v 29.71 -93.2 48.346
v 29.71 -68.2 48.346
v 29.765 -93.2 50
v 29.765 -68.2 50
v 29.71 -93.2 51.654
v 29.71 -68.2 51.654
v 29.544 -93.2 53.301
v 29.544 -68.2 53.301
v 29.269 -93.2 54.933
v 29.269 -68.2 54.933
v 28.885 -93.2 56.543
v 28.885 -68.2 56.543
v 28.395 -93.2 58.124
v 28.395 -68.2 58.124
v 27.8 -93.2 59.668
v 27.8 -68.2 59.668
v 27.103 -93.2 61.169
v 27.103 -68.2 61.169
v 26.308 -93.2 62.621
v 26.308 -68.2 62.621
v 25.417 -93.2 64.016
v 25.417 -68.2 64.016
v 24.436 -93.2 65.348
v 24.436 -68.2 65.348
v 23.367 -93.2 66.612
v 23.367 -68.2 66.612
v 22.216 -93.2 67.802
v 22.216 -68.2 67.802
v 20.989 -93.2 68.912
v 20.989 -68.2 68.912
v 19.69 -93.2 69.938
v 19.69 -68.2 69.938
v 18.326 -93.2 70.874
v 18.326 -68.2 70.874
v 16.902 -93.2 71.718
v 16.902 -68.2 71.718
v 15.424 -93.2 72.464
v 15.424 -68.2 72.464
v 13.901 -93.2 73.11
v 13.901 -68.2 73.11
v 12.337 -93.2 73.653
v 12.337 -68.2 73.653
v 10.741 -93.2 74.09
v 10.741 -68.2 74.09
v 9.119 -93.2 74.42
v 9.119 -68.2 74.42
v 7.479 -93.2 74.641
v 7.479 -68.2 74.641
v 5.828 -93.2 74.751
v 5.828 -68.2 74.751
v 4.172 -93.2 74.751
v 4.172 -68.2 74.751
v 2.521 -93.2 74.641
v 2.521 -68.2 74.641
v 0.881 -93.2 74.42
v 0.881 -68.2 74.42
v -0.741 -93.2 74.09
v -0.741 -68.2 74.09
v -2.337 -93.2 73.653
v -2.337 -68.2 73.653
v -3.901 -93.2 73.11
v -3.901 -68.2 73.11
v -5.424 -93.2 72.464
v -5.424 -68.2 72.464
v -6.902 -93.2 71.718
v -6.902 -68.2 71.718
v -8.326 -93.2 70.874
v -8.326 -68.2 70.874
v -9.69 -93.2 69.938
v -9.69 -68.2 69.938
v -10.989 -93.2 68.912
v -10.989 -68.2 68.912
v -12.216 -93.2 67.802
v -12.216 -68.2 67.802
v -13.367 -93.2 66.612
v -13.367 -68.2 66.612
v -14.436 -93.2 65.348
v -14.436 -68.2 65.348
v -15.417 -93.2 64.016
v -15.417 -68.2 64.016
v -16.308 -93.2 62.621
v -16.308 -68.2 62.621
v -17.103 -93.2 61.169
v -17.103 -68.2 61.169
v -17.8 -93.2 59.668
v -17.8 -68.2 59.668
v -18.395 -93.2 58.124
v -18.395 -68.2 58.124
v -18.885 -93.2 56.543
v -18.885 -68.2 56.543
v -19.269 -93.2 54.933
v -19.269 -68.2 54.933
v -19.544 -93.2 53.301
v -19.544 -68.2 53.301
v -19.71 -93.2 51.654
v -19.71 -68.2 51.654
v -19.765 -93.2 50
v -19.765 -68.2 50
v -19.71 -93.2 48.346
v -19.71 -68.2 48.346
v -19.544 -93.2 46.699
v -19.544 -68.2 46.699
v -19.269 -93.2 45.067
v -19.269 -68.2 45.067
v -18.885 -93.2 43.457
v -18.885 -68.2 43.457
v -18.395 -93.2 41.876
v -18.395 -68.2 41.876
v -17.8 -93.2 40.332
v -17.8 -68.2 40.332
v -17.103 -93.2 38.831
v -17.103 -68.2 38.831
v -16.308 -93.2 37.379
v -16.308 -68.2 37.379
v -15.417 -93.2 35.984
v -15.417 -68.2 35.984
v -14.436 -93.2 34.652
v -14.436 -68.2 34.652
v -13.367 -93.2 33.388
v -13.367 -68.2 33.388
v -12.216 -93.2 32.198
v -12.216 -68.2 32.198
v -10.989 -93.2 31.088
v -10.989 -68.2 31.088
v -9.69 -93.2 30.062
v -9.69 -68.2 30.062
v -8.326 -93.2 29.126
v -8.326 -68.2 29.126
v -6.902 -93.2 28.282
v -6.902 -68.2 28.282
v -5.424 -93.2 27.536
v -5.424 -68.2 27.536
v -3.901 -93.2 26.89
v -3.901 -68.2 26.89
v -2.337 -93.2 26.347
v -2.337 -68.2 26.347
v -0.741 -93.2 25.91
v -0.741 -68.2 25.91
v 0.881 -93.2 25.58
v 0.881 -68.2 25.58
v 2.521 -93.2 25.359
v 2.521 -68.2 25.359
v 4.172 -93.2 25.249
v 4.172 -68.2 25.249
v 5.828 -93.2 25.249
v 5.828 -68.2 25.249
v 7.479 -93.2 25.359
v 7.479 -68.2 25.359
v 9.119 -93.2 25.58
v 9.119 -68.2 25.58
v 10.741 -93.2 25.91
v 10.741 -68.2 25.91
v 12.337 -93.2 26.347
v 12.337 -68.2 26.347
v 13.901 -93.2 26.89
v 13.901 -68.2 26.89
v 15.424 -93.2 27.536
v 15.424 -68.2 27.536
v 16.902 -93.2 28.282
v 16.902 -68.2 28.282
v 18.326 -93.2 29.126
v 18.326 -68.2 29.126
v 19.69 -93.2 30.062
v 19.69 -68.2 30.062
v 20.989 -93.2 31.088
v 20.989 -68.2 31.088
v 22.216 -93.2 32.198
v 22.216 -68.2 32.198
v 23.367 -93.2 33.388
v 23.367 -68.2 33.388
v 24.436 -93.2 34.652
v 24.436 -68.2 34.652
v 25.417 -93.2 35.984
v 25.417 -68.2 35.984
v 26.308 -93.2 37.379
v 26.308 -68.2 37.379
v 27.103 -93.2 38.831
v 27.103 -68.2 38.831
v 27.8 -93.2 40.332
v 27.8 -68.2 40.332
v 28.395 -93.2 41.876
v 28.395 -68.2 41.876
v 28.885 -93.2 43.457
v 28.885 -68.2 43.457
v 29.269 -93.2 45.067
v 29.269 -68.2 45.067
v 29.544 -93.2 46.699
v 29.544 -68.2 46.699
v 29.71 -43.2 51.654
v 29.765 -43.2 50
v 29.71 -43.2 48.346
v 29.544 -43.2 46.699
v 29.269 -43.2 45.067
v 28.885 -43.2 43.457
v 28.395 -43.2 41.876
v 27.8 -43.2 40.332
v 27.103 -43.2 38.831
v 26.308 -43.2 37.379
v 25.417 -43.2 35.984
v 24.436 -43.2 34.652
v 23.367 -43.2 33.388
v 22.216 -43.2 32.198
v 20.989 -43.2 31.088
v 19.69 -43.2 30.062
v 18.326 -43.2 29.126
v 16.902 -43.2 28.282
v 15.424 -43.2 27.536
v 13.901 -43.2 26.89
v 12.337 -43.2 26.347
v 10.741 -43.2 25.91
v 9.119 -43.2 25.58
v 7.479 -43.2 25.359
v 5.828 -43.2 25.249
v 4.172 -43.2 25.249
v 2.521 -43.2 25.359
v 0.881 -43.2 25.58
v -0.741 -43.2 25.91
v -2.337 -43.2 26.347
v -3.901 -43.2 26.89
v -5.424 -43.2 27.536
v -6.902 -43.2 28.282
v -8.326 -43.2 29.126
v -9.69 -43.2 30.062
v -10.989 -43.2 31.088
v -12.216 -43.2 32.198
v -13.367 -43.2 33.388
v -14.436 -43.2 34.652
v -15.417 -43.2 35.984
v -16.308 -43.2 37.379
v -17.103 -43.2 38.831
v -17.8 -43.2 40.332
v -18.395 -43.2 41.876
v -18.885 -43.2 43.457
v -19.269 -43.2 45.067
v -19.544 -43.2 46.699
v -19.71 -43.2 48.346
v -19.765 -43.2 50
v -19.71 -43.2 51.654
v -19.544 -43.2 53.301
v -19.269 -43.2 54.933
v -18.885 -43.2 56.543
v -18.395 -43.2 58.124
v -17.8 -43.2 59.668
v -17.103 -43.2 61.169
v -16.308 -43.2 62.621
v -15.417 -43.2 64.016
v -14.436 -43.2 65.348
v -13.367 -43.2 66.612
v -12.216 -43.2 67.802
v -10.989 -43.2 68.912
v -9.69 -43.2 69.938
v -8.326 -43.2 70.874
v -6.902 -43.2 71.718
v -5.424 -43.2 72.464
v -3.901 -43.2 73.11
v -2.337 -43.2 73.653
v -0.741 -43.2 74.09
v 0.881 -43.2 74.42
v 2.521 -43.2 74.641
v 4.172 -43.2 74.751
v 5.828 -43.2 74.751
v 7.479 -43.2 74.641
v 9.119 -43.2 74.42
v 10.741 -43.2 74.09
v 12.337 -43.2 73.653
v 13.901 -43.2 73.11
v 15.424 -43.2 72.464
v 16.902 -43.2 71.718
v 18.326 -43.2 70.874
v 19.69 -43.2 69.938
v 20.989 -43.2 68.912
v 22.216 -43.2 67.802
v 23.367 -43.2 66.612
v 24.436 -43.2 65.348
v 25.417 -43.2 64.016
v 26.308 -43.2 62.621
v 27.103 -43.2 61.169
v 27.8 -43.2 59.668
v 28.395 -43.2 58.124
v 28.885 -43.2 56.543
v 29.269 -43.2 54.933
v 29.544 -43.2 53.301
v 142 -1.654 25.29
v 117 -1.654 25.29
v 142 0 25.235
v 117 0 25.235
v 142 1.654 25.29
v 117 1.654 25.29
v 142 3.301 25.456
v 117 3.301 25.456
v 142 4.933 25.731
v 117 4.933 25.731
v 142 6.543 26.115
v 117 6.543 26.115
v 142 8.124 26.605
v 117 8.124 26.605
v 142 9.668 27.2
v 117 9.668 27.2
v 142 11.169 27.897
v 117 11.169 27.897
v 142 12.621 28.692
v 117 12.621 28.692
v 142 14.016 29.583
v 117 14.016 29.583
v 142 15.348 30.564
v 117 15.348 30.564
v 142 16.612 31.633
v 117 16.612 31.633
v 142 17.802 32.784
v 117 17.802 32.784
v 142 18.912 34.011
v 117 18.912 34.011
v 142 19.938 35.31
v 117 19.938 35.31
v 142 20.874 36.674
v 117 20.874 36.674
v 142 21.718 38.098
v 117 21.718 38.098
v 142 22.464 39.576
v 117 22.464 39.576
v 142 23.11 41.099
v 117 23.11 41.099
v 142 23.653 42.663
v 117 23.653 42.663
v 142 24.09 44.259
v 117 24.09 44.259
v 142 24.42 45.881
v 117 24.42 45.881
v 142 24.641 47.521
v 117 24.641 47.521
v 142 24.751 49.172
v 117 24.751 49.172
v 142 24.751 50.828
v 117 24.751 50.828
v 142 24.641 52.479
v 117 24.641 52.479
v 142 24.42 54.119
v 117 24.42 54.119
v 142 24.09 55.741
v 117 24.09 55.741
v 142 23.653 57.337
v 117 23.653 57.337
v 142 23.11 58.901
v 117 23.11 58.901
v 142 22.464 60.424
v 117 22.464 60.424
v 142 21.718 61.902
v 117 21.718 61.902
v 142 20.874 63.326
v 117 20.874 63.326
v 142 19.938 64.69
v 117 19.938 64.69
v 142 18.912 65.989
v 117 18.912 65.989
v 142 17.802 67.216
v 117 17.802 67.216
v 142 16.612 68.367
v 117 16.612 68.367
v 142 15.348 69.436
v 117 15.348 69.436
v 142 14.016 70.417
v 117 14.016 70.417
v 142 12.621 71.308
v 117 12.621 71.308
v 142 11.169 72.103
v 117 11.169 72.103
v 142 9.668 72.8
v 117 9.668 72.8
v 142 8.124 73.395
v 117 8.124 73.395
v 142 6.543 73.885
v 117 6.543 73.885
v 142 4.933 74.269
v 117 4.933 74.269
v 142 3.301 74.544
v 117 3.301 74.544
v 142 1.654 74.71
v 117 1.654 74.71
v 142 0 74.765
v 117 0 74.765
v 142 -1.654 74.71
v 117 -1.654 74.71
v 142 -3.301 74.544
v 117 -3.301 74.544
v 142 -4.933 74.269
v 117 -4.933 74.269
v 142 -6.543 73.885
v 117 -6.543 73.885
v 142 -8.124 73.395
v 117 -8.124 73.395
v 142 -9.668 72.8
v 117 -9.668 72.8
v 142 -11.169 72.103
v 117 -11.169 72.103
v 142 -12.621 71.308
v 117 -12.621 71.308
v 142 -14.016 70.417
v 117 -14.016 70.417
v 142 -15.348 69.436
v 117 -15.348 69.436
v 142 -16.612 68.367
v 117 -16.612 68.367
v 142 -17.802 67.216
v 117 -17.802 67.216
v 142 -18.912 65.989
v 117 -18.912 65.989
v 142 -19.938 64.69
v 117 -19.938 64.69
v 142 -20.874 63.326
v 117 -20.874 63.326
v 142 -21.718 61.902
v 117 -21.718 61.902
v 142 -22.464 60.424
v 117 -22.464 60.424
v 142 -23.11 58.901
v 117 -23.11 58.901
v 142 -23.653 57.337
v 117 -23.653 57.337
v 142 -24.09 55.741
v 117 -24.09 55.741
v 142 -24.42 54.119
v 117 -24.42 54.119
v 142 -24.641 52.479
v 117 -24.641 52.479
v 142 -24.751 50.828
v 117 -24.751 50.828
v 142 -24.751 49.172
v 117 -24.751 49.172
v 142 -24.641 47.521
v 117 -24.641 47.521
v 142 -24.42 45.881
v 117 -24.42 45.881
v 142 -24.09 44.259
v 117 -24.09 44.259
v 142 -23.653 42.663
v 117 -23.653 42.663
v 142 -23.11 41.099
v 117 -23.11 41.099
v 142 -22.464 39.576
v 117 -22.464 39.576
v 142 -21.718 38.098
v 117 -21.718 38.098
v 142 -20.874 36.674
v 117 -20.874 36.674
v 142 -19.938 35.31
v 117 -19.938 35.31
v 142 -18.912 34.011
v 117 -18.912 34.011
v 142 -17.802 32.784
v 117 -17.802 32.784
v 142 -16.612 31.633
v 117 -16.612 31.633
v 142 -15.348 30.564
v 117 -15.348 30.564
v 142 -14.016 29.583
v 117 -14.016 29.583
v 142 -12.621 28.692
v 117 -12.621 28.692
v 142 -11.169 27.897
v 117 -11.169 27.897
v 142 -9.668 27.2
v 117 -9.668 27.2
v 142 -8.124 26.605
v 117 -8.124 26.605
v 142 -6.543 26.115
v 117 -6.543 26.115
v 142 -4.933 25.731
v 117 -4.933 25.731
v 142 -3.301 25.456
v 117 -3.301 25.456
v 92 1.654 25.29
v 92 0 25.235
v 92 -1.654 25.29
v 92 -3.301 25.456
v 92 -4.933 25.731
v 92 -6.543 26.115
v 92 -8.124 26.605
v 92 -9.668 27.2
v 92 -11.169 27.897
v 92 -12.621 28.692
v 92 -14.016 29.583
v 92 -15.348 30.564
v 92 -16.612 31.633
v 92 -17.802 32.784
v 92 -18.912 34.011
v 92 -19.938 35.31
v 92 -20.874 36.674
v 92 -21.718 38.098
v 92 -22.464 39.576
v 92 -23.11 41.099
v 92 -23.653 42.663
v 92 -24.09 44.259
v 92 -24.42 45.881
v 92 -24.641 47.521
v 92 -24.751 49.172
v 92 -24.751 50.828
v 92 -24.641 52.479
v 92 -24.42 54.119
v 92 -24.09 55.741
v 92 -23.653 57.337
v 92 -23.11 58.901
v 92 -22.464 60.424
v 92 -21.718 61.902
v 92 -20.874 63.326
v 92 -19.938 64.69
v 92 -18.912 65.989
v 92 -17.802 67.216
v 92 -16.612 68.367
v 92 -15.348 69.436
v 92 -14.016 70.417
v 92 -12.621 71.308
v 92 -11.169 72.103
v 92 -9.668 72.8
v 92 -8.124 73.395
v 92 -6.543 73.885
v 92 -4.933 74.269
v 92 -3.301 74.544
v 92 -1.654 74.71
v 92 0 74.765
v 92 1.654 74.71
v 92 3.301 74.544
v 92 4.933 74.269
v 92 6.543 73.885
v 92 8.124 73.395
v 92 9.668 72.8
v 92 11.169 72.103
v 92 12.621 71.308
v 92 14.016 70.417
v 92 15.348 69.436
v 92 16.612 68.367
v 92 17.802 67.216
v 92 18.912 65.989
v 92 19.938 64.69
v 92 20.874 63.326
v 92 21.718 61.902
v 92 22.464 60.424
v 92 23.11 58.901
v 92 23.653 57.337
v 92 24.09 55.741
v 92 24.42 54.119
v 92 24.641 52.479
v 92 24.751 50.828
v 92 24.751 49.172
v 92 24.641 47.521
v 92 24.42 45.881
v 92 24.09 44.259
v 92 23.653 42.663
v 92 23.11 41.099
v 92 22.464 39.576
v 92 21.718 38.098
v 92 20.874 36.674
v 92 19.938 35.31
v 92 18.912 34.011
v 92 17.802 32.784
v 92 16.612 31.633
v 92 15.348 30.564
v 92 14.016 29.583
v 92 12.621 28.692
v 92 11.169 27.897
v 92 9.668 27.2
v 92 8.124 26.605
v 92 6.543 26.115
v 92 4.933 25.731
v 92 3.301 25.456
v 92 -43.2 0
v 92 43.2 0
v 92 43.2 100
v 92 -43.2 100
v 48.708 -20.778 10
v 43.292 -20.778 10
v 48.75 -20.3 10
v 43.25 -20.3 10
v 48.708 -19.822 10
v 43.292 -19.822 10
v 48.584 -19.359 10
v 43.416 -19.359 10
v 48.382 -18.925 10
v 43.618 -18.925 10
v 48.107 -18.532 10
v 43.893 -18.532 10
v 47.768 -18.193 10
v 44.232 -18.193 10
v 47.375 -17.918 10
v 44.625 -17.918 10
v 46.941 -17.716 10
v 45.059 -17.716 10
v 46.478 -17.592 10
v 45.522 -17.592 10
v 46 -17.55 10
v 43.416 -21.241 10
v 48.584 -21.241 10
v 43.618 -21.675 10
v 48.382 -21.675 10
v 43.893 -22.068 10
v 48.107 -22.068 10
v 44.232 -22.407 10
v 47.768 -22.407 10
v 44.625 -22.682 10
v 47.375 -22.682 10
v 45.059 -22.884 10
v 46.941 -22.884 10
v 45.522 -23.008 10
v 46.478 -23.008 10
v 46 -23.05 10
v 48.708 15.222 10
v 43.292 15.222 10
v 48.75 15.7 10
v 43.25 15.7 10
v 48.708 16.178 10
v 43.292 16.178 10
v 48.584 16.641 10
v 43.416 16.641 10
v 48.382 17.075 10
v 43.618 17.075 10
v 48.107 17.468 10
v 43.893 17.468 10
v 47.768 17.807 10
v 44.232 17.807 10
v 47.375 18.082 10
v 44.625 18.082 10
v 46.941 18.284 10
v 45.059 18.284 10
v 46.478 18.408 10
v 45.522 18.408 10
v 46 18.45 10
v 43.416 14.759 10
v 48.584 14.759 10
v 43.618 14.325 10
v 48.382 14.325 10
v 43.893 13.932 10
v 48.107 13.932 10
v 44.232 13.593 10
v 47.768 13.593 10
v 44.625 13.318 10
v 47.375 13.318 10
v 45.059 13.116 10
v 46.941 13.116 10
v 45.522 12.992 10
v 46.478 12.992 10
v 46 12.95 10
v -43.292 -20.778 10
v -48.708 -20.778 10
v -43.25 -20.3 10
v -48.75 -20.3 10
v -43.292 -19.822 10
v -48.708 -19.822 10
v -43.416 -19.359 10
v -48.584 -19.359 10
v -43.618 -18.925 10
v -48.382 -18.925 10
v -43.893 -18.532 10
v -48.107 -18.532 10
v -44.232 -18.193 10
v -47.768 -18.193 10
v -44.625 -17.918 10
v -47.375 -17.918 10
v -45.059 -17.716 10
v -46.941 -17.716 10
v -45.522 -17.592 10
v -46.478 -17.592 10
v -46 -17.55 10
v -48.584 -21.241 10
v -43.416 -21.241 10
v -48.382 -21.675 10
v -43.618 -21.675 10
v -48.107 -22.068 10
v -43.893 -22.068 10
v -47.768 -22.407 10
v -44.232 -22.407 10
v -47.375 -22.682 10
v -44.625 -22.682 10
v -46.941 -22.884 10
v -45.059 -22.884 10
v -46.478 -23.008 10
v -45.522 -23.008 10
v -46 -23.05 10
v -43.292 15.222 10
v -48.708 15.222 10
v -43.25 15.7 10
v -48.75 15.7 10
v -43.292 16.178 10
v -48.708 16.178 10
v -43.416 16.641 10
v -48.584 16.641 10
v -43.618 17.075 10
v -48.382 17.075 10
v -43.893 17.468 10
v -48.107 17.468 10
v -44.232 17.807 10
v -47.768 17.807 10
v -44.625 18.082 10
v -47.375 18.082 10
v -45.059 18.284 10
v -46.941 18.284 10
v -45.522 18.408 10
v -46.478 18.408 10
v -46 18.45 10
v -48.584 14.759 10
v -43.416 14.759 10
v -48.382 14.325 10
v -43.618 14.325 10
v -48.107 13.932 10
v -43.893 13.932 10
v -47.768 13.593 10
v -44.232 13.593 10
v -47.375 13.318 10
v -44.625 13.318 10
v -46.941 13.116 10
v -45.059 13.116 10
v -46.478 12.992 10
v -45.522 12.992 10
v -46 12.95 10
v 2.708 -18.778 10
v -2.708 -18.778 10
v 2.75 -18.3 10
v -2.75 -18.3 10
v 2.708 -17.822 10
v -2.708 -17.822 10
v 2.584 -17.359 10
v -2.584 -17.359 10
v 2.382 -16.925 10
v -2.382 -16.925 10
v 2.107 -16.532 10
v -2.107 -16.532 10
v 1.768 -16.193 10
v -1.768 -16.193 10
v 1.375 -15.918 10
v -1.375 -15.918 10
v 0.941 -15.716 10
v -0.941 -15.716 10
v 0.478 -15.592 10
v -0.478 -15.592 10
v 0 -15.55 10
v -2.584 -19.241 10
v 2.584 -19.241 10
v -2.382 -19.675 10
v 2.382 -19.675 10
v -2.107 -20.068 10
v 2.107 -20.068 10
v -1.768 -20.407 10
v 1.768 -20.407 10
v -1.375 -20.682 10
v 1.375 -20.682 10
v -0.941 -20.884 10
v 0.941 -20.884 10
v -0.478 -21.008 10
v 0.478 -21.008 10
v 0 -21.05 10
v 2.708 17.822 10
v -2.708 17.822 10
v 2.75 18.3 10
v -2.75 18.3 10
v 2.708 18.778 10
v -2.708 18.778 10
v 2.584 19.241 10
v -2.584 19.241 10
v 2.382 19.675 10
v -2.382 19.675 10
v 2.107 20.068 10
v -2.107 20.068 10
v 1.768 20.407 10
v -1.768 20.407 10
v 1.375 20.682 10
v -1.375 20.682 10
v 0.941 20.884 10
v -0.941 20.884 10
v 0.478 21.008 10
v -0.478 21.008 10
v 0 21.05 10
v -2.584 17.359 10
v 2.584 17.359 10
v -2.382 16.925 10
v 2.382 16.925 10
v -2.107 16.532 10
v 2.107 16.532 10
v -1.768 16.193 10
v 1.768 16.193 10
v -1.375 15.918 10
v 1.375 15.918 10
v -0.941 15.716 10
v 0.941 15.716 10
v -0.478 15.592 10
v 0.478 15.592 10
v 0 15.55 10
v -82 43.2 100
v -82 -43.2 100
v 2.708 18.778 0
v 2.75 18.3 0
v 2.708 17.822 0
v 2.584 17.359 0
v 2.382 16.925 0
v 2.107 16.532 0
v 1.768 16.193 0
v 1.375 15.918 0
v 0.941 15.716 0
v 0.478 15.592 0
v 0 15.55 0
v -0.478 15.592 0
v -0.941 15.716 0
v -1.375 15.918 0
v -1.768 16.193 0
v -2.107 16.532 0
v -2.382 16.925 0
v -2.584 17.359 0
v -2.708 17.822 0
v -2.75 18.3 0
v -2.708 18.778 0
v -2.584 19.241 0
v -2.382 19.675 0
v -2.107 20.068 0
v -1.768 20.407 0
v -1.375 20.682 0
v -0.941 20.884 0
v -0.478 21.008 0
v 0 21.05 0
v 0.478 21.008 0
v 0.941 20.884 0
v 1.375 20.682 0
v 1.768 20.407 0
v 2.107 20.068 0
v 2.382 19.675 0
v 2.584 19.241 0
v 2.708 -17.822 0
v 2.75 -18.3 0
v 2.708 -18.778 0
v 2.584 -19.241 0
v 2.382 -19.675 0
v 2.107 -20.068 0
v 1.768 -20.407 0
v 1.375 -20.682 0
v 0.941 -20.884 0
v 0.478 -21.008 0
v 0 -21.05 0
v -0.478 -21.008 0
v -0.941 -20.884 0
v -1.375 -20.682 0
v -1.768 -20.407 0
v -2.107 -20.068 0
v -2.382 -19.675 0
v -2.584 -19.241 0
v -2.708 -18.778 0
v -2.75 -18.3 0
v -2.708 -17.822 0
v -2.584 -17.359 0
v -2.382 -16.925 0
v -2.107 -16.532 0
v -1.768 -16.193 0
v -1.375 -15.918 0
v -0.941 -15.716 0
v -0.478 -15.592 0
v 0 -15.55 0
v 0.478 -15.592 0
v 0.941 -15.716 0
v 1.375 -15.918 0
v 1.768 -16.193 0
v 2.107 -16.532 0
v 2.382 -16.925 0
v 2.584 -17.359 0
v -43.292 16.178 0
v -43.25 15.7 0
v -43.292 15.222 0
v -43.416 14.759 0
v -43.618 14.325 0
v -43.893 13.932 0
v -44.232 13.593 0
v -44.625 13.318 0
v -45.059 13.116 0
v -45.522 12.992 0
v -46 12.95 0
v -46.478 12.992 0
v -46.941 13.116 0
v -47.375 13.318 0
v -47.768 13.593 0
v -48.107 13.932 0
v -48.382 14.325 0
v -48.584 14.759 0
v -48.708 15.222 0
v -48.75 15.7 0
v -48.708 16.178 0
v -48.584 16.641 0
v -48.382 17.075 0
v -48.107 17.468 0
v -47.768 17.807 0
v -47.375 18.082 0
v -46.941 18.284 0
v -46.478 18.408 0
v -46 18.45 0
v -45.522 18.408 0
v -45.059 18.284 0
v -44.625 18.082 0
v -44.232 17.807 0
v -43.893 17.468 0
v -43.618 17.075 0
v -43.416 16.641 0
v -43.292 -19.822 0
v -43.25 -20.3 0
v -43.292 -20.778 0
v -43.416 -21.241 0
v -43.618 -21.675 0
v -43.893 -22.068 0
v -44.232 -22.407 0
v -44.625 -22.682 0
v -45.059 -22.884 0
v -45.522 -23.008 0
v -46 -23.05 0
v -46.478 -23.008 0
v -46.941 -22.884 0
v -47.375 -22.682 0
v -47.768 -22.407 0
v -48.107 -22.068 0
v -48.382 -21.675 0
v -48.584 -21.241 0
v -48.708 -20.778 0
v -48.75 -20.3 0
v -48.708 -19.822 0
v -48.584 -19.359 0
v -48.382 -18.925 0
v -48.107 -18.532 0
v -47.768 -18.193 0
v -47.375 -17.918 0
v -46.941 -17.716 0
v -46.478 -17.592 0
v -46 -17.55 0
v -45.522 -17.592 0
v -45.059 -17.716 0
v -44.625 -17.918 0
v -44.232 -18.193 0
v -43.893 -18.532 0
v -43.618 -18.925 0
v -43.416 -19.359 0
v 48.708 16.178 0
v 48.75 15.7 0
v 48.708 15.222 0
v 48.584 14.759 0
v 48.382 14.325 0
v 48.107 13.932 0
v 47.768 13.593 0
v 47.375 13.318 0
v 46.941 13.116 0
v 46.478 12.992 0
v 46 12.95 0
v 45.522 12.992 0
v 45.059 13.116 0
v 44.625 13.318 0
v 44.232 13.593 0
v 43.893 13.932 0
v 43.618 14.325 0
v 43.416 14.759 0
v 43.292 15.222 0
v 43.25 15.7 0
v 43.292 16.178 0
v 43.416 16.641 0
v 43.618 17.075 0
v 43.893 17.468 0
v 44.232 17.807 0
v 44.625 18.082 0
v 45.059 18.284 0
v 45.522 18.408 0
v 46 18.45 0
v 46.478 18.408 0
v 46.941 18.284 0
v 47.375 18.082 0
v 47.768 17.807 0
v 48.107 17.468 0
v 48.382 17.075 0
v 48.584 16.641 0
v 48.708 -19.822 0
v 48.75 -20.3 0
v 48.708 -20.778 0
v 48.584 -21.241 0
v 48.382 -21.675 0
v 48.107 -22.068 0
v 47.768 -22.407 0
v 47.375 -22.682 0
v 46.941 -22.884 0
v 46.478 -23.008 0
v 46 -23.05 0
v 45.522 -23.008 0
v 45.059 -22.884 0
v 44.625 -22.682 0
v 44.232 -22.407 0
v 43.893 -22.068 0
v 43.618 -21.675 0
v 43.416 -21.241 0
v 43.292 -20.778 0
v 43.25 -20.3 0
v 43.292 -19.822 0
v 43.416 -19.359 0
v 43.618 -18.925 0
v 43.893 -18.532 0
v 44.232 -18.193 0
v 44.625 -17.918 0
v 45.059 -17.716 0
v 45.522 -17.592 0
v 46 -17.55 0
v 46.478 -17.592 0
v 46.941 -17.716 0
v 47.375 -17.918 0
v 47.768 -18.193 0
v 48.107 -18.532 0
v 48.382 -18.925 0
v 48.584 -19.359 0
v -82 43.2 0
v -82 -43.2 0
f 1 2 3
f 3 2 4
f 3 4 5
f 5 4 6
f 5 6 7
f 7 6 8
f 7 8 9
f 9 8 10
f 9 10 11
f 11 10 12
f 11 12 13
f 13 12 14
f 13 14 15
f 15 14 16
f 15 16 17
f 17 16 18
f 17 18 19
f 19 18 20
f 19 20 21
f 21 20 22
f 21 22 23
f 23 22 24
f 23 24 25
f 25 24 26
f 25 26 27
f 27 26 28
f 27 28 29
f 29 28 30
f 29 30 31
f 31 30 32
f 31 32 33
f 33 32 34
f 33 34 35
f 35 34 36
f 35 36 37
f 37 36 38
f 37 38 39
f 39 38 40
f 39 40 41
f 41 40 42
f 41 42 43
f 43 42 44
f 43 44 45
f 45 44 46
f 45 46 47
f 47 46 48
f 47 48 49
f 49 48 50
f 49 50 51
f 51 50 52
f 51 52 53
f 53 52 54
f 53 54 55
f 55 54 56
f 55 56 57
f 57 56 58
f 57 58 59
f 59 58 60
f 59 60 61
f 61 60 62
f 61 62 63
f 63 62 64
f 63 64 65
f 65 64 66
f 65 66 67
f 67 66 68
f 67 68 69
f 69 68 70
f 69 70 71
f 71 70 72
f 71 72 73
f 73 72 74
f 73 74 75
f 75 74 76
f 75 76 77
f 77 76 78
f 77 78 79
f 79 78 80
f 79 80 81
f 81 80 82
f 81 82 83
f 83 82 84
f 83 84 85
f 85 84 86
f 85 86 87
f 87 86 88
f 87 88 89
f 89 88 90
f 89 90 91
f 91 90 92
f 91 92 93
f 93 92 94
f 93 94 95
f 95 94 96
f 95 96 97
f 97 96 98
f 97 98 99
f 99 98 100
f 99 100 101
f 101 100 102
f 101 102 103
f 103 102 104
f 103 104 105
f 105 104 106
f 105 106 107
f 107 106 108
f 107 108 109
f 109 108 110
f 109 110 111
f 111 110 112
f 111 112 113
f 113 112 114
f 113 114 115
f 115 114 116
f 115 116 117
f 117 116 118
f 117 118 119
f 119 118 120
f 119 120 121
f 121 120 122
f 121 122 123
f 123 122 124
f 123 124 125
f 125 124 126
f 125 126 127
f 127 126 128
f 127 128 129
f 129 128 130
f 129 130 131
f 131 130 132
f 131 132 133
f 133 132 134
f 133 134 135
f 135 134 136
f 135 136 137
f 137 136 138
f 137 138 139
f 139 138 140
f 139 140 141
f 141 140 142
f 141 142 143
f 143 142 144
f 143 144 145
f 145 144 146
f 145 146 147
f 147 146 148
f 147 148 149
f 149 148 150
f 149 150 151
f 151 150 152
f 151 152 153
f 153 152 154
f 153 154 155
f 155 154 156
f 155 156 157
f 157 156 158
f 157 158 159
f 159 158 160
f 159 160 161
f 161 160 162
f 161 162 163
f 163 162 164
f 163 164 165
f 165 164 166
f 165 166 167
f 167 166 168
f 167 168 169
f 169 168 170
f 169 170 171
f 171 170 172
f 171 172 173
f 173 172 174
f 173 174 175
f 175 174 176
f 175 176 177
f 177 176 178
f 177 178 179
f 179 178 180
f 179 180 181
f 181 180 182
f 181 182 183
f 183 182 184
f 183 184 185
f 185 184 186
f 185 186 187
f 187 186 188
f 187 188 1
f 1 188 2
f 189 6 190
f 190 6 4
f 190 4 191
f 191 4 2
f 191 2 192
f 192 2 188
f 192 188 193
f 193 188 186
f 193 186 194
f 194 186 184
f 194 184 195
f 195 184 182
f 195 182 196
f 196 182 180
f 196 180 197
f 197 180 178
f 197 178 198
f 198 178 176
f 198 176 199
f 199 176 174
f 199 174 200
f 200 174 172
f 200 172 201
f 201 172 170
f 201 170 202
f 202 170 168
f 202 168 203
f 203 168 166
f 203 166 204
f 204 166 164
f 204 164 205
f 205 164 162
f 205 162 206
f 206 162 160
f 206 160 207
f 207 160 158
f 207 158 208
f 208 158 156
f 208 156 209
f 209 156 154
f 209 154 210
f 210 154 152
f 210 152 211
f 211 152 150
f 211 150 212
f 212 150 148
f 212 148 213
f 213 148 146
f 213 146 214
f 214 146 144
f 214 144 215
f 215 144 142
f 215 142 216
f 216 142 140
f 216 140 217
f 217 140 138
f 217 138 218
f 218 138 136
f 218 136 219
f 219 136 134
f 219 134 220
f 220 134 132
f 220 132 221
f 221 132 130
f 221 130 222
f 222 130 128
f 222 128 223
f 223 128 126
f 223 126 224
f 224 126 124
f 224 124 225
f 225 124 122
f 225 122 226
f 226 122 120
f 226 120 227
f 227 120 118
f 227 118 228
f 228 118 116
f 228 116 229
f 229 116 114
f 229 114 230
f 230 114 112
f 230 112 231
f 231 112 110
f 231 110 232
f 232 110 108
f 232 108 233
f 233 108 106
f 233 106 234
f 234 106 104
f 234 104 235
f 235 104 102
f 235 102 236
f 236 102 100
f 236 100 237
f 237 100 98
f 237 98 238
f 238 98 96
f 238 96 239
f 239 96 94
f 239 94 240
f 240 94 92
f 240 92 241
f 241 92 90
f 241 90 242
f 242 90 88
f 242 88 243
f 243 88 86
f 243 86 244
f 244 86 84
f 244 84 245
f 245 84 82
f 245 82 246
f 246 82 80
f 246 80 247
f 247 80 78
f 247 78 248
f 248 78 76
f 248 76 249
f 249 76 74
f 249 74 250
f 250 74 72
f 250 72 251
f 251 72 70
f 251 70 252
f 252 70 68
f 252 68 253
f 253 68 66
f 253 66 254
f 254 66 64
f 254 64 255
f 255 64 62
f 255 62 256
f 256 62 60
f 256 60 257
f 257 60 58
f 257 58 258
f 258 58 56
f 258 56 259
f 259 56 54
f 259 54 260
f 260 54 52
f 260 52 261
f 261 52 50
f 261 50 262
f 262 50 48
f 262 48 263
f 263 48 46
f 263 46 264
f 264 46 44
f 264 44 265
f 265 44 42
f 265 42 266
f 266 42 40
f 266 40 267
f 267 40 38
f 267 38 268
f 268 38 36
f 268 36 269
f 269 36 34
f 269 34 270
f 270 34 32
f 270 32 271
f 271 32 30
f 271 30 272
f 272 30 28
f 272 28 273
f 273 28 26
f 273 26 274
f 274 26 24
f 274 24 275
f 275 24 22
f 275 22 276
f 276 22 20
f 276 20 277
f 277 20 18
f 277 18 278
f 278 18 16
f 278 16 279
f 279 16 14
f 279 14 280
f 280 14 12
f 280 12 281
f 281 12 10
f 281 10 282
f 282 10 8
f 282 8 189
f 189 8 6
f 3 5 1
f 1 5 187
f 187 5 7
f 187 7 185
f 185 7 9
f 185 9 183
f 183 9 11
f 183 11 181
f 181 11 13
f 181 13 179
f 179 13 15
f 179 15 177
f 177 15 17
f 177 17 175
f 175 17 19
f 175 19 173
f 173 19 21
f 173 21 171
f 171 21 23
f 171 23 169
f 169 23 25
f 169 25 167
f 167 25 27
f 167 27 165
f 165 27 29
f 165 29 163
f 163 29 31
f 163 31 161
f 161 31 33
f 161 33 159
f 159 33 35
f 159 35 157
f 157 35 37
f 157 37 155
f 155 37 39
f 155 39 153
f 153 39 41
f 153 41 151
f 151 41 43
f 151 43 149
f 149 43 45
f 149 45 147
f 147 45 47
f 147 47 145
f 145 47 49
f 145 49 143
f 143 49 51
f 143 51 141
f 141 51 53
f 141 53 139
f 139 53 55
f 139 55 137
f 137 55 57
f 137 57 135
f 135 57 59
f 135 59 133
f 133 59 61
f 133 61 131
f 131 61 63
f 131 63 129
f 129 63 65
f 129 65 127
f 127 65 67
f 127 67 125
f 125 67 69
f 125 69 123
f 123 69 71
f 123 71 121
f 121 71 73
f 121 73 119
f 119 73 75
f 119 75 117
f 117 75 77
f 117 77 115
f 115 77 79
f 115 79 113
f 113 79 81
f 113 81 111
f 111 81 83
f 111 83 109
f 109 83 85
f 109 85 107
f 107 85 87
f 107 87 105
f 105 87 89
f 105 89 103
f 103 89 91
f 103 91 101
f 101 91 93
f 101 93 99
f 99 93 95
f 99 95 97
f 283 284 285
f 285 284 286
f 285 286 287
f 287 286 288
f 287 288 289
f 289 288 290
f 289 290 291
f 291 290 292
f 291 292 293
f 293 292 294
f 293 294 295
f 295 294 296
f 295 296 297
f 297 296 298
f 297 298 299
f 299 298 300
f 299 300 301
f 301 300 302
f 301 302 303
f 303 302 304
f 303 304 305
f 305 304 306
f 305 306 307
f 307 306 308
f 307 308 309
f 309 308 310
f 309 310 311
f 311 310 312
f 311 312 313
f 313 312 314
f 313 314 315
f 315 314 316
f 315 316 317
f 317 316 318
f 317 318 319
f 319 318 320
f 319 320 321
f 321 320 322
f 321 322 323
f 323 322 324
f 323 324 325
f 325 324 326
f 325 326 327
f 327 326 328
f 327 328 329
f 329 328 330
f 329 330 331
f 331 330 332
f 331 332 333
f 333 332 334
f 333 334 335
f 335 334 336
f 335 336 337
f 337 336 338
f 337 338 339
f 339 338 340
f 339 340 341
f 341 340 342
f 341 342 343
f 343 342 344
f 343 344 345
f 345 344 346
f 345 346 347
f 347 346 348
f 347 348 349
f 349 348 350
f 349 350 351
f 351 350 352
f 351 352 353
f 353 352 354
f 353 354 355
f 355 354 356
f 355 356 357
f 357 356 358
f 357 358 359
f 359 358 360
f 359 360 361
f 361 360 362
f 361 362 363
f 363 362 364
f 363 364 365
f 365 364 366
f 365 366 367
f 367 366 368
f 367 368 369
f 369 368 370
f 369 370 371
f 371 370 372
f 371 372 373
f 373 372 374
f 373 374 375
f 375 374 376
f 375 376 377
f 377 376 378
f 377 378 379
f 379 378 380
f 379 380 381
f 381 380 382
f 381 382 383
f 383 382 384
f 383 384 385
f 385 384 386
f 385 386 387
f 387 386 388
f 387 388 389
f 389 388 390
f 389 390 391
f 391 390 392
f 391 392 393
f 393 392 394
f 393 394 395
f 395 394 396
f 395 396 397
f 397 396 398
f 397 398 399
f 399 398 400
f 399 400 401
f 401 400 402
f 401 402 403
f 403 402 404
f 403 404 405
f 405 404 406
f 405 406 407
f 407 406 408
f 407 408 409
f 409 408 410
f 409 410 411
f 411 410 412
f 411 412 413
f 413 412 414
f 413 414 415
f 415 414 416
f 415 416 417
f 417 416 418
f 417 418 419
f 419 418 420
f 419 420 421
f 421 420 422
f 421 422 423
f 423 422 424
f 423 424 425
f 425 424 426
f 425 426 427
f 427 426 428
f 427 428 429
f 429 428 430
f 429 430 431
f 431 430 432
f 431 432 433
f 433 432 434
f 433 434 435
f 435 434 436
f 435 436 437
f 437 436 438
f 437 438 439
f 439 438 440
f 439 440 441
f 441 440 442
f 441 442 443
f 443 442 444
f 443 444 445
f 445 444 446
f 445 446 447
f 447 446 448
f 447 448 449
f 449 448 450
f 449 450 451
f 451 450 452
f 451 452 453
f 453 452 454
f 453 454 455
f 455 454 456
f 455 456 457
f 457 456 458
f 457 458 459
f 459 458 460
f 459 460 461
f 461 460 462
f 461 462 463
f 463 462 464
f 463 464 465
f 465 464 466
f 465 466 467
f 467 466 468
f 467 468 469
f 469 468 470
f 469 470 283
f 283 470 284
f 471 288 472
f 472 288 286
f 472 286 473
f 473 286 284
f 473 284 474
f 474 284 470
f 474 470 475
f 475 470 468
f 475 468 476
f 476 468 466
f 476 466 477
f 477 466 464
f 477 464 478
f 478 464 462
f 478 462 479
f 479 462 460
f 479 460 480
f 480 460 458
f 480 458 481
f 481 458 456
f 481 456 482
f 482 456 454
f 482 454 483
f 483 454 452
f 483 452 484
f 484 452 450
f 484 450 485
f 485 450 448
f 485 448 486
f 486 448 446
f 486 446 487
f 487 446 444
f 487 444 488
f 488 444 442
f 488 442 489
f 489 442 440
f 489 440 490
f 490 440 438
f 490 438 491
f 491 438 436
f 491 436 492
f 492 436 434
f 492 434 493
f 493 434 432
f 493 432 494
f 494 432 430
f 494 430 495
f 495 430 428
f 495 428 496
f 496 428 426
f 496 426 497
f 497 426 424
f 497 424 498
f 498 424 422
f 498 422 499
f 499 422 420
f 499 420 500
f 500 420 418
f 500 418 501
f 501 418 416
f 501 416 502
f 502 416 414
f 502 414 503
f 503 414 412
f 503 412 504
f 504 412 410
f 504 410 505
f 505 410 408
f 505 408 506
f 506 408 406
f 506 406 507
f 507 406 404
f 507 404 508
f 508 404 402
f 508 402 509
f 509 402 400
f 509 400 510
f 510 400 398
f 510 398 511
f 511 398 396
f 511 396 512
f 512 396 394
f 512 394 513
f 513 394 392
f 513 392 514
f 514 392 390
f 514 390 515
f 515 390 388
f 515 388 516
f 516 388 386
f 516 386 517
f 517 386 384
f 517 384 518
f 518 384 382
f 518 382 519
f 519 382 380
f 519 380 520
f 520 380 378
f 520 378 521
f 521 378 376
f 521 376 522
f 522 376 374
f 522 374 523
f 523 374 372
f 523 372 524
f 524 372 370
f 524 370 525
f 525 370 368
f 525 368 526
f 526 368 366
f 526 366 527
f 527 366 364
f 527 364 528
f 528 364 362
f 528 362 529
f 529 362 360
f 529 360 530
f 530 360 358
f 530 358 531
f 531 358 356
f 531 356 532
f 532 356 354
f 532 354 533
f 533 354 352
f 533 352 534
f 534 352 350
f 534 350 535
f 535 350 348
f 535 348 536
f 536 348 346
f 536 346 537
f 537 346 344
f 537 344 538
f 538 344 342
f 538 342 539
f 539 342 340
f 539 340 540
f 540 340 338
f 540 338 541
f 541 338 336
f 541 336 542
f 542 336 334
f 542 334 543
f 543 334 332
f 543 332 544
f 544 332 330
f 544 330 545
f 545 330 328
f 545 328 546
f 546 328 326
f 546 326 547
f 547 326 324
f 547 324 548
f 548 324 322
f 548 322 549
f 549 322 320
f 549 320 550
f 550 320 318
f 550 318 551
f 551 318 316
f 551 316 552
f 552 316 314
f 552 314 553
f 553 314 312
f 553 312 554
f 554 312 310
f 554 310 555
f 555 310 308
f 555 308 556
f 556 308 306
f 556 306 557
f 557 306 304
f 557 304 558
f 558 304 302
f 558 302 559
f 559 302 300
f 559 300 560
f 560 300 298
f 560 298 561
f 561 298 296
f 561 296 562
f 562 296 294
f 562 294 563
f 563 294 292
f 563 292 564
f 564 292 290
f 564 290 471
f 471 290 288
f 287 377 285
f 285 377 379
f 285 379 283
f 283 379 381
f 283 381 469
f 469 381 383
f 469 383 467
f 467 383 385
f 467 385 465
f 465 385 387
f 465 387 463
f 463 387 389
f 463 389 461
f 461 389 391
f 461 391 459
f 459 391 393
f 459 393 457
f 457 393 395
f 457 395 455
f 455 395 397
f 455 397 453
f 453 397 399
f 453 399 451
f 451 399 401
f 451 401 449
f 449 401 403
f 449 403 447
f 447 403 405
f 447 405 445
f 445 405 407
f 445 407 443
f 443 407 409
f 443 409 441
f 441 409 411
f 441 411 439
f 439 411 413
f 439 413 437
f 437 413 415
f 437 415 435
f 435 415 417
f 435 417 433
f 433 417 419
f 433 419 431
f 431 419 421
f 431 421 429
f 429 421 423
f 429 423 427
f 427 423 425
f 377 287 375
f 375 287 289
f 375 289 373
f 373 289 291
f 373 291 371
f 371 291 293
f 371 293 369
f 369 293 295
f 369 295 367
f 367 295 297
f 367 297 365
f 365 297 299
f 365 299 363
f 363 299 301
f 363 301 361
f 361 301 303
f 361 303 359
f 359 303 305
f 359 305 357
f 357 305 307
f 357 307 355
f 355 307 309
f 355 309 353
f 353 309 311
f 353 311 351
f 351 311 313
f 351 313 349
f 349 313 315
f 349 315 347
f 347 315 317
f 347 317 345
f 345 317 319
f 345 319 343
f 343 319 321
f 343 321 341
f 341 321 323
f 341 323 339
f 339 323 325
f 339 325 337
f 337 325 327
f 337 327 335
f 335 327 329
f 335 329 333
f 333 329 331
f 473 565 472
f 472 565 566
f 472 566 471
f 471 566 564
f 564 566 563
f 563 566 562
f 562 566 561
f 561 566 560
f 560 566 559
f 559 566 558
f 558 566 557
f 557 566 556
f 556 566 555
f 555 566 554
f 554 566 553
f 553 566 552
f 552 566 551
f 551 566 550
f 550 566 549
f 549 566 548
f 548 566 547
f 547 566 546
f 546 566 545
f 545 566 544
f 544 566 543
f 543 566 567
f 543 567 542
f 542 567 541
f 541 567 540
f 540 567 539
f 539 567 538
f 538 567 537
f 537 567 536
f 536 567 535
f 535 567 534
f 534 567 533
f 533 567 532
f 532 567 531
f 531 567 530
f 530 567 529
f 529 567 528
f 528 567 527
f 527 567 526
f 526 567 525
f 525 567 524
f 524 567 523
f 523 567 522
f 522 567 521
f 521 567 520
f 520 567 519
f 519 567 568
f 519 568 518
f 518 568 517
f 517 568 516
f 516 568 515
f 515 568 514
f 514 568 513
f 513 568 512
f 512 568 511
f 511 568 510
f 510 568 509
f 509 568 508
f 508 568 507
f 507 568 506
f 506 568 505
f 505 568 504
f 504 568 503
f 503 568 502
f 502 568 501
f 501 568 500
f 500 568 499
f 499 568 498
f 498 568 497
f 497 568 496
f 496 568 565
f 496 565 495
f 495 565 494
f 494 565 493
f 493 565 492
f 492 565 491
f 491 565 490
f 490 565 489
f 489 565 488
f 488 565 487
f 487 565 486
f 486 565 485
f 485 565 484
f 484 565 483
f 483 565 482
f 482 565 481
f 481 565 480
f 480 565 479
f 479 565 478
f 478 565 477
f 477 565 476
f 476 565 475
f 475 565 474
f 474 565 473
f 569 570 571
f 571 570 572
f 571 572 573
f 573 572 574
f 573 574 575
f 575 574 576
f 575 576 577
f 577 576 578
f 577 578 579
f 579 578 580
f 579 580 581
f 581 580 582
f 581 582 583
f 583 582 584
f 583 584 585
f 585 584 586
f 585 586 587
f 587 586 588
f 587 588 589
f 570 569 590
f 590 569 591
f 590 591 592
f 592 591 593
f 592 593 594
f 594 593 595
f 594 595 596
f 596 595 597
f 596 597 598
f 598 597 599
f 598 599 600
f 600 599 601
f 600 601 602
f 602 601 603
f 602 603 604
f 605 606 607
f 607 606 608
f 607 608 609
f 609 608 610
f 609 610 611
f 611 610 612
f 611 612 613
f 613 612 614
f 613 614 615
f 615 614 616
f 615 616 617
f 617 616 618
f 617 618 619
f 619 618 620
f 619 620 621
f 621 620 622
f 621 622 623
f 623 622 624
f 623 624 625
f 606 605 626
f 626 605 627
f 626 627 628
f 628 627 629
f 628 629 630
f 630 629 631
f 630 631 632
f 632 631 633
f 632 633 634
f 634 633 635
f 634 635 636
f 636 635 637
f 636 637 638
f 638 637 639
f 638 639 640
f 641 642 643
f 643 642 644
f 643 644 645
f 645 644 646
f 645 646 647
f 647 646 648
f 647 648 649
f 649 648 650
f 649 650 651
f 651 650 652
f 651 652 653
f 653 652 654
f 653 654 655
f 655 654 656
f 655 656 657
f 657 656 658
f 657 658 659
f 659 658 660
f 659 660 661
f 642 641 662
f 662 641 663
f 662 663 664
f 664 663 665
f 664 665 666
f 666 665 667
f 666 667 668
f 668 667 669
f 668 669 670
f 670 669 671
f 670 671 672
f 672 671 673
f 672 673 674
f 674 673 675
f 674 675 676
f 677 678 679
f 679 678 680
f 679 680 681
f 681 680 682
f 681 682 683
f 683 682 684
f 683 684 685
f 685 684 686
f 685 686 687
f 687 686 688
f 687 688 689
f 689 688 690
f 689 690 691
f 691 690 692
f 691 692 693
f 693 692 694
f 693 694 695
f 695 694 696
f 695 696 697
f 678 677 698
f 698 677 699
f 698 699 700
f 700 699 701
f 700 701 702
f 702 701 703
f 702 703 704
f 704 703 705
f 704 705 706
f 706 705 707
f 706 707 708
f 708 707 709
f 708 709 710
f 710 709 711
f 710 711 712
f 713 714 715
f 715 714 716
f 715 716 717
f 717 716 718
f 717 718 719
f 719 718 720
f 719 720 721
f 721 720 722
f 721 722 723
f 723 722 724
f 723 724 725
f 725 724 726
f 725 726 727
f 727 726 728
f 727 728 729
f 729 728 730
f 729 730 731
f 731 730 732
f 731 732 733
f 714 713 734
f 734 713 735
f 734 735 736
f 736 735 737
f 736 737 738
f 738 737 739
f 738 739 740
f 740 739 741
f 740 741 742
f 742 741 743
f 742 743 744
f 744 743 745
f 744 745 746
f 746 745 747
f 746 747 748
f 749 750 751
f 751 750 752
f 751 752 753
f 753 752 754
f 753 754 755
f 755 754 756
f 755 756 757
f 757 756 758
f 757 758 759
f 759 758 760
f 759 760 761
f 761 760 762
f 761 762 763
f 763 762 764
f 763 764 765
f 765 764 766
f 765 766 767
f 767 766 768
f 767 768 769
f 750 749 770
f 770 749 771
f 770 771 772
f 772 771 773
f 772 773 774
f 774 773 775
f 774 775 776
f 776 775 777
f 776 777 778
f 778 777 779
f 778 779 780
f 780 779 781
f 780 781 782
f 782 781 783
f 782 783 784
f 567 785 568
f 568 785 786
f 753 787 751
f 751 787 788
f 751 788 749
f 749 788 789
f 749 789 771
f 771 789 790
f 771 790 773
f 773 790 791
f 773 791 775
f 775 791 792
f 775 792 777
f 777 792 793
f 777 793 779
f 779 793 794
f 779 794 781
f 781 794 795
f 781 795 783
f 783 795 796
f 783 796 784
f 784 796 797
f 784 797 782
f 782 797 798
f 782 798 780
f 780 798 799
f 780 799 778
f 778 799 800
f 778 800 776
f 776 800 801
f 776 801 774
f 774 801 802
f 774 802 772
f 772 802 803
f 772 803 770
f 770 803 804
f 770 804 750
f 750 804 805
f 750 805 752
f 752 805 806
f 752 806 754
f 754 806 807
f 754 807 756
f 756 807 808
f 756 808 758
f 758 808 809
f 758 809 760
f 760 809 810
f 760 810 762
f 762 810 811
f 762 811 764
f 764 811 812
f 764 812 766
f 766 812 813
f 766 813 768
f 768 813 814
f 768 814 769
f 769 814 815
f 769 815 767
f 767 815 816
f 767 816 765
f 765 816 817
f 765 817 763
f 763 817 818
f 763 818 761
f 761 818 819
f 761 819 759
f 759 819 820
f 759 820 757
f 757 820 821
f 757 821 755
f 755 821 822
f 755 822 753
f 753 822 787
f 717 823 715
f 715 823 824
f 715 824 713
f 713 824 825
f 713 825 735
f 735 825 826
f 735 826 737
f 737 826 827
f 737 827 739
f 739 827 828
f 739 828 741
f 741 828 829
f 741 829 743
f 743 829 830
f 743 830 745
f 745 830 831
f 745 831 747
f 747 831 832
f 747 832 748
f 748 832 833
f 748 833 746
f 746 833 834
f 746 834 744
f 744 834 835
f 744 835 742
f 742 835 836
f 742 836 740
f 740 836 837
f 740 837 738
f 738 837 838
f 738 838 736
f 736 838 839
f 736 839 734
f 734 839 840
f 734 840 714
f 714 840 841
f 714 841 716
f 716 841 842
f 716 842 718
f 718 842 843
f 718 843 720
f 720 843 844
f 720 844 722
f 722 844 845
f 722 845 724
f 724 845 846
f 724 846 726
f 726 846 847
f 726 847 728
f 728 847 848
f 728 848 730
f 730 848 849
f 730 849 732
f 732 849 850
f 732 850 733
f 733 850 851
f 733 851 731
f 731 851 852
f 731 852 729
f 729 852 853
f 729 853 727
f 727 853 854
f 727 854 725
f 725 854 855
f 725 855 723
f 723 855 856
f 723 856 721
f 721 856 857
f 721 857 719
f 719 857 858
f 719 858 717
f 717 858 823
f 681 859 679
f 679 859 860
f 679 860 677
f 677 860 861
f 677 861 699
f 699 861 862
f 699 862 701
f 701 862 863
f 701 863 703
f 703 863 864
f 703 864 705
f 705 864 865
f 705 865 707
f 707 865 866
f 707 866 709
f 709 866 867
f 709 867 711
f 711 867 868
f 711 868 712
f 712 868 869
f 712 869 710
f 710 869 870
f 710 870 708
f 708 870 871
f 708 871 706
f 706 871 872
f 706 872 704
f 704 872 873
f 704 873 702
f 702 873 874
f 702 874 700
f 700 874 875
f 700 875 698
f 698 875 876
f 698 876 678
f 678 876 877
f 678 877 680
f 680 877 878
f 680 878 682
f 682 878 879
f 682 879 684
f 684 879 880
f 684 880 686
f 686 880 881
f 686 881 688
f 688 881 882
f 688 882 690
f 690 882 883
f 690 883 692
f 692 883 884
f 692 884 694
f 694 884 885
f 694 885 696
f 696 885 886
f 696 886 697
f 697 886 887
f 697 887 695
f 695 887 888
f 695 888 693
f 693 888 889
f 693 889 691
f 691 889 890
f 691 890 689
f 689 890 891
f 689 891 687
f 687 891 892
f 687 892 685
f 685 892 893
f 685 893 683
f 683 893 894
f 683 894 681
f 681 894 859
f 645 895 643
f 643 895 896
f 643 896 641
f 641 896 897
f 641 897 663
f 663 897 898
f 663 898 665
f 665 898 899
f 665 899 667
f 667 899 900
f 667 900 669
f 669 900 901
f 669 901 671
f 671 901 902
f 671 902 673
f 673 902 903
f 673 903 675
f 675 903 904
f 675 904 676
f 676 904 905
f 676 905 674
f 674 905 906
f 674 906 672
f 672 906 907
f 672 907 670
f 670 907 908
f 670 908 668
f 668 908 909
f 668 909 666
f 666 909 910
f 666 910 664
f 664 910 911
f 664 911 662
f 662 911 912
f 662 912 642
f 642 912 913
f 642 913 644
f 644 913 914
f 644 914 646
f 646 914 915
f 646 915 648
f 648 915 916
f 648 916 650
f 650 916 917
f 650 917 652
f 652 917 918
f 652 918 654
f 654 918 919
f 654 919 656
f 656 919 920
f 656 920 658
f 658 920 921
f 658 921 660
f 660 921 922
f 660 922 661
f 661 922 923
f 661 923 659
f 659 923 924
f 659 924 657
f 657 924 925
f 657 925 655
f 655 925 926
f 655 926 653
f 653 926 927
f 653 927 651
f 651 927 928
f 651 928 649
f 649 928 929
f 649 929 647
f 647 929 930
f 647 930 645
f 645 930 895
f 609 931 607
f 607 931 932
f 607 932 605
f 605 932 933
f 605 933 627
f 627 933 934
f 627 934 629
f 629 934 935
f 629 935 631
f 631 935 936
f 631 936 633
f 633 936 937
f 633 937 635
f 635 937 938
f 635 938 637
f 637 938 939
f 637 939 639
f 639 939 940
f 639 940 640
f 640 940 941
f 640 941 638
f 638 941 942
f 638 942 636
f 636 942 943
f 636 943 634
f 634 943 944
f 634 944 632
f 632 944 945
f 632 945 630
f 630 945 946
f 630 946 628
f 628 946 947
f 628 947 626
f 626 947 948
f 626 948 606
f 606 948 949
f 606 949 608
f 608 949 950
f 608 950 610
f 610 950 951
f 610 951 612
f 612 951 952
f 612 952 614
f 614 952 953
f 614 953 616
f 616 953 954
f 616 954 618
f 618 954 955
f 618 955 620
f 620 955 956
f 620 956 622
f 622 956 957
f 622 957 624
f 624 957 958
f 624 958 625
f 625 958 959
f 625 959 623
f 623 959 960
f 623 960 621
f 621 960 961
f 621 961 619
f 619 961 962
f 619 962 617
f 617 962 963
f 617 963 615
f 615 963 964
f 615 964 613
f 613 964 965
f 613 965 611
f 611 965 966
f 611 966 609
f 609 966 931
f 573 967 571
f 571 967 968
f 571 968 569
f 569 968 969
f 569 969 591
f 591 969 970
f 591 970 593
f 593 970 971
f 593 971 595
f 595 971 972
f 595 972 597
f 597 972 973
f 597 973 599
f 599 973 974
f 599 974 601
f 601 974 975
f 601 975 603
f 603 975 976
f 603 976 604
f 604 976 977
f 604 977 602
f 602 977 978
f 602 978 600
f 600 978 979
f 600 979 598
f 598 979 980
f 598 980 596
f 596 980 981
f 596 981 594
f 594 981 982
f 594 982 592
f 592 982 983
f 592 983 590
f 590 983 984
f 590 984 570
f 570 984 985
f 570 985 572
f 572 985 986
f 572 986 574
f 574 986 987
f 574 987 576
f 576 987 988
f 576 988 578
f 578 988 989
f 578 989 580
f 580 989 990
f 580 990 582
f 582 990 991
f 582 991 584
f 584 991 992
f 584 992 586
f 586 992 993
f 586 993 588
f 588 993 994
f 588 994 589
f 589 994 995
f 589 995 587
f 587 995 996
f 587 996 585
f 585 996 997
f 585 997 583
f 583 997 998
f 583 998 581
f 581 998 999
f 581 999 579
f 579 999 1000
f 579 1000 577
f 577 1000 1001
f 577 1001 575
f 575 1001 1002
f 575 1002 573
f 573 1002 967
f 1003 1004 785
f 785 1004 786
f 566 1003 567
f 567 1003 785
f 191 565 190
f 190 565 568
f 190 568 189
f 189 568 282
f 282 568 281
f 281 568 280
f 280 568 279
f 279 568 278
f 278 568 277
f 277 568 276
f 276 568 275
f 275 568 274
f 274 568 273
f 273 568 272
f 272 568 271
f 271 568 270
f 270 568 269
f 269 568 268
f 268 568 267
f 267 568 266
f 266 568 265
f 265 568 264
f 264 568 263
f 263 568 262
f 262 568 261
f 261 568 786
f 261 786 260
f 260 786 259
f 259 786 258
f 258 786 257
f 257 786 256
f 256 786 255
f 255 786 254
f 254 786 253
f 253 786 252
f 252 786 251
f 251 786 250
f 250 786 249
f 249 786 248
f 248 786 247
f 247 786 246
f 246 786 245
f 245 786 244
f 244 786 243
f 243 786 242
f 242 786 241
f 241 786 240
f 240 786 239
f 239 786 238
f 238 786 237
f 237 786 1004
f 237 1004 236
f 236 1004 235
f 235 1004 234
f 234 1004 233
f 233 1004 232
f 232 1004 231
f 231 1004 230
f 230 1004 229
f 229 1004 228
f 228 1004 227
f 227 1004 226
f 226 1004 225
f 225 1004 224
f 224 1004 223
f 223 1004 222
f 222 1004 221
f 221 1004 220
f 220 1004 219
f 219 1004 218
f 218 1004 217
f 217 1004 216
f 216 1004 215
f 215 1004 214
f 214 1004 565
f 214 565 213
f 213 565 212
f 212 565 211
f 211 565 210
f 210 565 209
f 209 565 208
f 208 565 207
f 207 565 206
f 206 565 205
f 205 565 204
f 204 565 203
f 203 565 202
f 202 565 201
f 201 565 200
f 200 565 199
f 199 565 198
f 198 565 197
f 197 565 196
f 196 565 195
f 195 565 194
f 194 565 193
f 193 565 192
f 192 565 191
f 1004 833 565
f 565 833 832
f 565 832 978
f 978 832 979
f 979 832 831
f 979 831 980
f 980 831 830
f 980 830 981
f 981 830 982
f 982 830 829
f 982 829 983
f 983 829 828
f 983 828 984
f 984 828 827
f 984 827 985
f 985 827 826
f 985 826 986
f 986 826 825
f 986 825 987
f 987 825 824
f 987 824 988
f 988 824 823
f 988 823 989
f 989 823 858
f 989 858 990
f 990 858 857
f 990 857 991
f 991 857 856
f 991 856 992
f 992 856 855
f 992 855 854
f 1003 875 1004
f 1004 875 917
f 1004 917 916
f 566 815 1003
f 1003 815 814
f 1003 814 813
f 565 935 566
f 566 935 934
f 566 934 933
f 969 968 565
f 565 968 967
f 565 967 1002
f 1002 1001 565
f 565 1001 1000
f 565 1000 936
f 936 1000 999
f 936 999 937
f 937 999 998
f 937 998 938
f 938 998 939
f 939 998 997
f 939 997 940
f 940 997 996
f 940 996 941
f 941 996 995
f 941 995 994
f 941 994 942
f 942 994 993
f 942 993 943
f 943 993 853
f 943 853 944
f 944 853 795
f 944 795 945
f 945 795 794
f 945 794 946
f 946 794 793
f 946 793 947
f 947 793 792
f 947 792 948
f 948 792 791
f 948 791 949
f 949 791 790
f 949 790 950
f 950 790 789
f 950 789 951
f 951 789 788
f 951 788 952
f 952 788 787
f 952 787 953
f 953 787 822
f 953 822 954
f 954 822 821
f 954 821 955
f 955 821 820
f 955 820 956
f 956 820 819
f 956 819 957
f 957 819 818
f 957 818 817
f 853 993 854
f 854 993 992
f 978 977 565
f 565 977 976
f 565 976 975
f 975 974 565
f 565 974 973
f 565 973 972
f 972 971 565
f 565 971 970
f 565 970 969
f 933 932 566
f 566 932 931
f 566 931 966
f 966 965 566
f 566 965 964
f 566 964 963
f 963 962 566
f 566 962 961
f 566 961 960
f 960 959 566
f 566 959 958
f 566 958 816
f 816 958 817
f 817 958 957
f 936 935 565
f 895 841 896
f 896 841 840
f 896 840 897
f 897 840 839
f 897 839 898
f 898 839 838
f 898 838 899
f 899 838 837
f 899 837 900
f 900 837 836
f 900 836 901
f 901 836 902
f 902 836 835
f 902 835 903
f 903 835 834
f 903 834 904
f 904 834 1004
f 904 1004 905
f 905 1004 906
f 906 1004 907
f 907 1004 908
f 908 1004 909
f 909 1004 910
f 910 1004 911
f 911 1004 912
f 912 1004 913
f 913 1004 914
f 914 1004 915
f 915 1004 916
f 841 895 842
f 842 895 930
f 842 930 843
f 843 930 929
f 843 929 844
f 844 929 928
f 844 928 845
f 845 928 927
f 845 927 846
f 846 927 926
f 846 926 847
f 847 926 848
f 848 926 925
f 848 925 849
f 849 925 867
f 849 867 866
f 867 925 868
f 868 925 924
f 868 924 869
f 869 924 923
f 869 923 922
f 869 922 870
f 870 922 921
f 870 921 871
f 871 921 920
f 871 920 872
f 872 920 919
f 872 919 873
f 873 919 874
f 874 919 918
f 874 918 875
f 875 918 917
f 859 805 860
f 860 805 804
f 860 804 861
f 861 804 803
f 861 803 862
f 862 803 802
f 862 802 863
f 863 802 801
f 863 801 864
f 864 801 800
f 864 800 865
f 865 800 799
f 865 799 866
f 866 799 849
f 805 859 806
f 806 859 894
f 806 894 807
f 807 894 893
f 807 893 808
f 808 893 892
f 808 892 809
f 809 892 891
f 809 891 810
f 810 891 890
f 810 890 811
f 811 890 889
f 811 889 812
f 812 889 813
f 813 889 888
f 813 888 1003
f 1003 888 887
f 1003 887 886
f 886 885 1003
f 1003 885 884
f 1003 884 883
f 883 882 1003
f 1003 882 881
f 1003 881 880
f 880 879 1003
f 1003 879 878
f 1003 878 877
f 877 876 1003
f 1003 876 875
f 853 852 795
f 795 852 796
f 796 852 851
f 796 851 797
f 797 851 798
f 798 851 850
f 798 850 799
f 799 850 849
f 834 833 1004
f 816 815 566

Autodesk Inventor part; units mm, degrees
ref_plane "YZ Plane" through (0, 0, 0) normal (1, 0, 0) x (0, 1, 0)
ref_plane "XZ Plane" through (0, 0, 0) normal (0, 1, 0) x (-1, 0, 0)
ref_plane "XY Plane" through (0, 0, 0) normal (0, 0, 1) x (1, 0, 0)
sketch "Sketch1" plane through (0, 0, 0) normal (0, 0, 1) x (1, 0, 0)
  line L0 (-13.5, 24) -> (13.5, 24) construction
  line L1 (13.5, 24) -> (13.5, -24) construction
  line L2 (13.5, -24) -> (-13.5, -24) construction
  line L3 (-13.5, -24) -> (-13.5, 24) construction
  line L4 (-13.5, 0) -> (13.5, 0) construction
  line L5 (0, -24) -> (0, 24) construction
  circle A0 centre (0, 18.3) radius 2.75
  circle A1 centre (0, -18.3) radius 2.75
  line L6 (-60, 21.2) -> (-32, 21.2) construction
  line L7 (-32, 21.2) -> (-32, -25.8) construction
  line L8 (-32, -25.8) -> (-60, -25.8) construction
  line L9 (-60, -25.8) -> (-60, 21.2) construction
  line L10 (-46, 21.2) -> (-46, -25.8) construction
  line L11 (-60, -2.3) -> (-32, -2.3) construction
  circle A2 centre (-46, 15.7) radius 2.75
  circle A3 centre (-46, -20.3) radius 2.75
  circle A4 centre (46, 15.7) radius 2.75
  circle A5 centre (46, -20.3) radius 2.75
  line L12 (-82, 43.2) -> (82, 43.2)
  line L13 (82, 43.2) -> (82, -43.2)
  line L14 (82, -43.2) -> (-82, -43.2)
  line L15 (-82, -43.2) -> (-82, 43.2)
  point P0 (0, 0)
  point P1 (0, 0)
  dimension "d0" = 27
  dimension "d1" = 48
  dimension "d2" = 5.5
  dimension "d3" = 36.6
  dimension "d4" = 28
  dimension "d5" = 47
  dimension "d7" = 2.3
  dimension "d8" = 46
  dimension "d9" = 5.5
  dimension "d10" = 36
  dimension "d11" = 22
  dimension "d19" = 43.2
extrude "Extrusion1" add sketch "Sketch1" along normal blind 10
sketch "Sketch3" plane through (0, 0, 10) normal (0, 0, 1) x (1, 0, 0)
  line L0 (-82, 43.2) -> (-82, -43.2) projected
  line L1 (-82, -43.2) -> (82, -43.2) projected
  line L2 (-82, 43.2) -> (82, 43.2)
  line L3 (82, 43.2) -> (82, -43.2)
  line L4 (82, -43.2) -> (-82, -43.2)
  line L5 (-82, -43.2) -> (-82, 43.2)
  point P0 (0, 0)
extrude "Extrusion3" add sketch "Sketch3" along normal blind 90
sketch "Sketch7" plane through (82, -43.2, 0) normal (1, 0, 0) x (0, 0, -1)
  line L0 (0, 0) -> (0, 86.4) projected
  line L1 (0, 86.4) -> (-100, 86.4) projected
  line L2 (-100, 0) -> (-100, 86.4) projected
  line L3 (0, 0) -> (-100, 0) projected
  point P0 (0, 43.2)
extrude "Extrusion7" add sketch "Sketch7" along normal blind 10
sketch "Sketch8" plane through (92, -43.2, 0) normal (1, 0, 0) x (0, 0, -1)
  line L0 (-100, 86.4) -> (-100, 0) construction
  line L1 (-100, 43.2) -> (0, 43.2) construction
  line L2 (0, 86.4) -> (-100, 86.4) construction
  line L3 (-50, 86.4) -> (-50, 0) construction
  circle A0 centre (-50, 43.2) radius 24.765
  dimension "d30" = 49.53
extrude "Extrusion8" add sketch "Sketch8" along normal blind 50
sketch "Sketch9" plane through (-82, -43.2, 0) normal (0, -1, 0) x (1, 0, 0)
  line L0 (174, 100) -> (174, 0) construction
  line L1 (174, 50) -> (0, 50) construction
  line L2 (0, 0) -> (0, 100) construction
  line L3 (0, 0) -> (174, 0) construction
  line L4 (87, 0) -> (87, 100) construction
  line L5 (0, 100) -> (174, 100) construction
  circle A0 centre (87, 50) radius 24.765
  point P0 (82, 0)
  dimension "d33" = 49.53
extrude "Extrusion9" add sketch "Sketch9" along normal blind 50
properties part number "aux_L"
